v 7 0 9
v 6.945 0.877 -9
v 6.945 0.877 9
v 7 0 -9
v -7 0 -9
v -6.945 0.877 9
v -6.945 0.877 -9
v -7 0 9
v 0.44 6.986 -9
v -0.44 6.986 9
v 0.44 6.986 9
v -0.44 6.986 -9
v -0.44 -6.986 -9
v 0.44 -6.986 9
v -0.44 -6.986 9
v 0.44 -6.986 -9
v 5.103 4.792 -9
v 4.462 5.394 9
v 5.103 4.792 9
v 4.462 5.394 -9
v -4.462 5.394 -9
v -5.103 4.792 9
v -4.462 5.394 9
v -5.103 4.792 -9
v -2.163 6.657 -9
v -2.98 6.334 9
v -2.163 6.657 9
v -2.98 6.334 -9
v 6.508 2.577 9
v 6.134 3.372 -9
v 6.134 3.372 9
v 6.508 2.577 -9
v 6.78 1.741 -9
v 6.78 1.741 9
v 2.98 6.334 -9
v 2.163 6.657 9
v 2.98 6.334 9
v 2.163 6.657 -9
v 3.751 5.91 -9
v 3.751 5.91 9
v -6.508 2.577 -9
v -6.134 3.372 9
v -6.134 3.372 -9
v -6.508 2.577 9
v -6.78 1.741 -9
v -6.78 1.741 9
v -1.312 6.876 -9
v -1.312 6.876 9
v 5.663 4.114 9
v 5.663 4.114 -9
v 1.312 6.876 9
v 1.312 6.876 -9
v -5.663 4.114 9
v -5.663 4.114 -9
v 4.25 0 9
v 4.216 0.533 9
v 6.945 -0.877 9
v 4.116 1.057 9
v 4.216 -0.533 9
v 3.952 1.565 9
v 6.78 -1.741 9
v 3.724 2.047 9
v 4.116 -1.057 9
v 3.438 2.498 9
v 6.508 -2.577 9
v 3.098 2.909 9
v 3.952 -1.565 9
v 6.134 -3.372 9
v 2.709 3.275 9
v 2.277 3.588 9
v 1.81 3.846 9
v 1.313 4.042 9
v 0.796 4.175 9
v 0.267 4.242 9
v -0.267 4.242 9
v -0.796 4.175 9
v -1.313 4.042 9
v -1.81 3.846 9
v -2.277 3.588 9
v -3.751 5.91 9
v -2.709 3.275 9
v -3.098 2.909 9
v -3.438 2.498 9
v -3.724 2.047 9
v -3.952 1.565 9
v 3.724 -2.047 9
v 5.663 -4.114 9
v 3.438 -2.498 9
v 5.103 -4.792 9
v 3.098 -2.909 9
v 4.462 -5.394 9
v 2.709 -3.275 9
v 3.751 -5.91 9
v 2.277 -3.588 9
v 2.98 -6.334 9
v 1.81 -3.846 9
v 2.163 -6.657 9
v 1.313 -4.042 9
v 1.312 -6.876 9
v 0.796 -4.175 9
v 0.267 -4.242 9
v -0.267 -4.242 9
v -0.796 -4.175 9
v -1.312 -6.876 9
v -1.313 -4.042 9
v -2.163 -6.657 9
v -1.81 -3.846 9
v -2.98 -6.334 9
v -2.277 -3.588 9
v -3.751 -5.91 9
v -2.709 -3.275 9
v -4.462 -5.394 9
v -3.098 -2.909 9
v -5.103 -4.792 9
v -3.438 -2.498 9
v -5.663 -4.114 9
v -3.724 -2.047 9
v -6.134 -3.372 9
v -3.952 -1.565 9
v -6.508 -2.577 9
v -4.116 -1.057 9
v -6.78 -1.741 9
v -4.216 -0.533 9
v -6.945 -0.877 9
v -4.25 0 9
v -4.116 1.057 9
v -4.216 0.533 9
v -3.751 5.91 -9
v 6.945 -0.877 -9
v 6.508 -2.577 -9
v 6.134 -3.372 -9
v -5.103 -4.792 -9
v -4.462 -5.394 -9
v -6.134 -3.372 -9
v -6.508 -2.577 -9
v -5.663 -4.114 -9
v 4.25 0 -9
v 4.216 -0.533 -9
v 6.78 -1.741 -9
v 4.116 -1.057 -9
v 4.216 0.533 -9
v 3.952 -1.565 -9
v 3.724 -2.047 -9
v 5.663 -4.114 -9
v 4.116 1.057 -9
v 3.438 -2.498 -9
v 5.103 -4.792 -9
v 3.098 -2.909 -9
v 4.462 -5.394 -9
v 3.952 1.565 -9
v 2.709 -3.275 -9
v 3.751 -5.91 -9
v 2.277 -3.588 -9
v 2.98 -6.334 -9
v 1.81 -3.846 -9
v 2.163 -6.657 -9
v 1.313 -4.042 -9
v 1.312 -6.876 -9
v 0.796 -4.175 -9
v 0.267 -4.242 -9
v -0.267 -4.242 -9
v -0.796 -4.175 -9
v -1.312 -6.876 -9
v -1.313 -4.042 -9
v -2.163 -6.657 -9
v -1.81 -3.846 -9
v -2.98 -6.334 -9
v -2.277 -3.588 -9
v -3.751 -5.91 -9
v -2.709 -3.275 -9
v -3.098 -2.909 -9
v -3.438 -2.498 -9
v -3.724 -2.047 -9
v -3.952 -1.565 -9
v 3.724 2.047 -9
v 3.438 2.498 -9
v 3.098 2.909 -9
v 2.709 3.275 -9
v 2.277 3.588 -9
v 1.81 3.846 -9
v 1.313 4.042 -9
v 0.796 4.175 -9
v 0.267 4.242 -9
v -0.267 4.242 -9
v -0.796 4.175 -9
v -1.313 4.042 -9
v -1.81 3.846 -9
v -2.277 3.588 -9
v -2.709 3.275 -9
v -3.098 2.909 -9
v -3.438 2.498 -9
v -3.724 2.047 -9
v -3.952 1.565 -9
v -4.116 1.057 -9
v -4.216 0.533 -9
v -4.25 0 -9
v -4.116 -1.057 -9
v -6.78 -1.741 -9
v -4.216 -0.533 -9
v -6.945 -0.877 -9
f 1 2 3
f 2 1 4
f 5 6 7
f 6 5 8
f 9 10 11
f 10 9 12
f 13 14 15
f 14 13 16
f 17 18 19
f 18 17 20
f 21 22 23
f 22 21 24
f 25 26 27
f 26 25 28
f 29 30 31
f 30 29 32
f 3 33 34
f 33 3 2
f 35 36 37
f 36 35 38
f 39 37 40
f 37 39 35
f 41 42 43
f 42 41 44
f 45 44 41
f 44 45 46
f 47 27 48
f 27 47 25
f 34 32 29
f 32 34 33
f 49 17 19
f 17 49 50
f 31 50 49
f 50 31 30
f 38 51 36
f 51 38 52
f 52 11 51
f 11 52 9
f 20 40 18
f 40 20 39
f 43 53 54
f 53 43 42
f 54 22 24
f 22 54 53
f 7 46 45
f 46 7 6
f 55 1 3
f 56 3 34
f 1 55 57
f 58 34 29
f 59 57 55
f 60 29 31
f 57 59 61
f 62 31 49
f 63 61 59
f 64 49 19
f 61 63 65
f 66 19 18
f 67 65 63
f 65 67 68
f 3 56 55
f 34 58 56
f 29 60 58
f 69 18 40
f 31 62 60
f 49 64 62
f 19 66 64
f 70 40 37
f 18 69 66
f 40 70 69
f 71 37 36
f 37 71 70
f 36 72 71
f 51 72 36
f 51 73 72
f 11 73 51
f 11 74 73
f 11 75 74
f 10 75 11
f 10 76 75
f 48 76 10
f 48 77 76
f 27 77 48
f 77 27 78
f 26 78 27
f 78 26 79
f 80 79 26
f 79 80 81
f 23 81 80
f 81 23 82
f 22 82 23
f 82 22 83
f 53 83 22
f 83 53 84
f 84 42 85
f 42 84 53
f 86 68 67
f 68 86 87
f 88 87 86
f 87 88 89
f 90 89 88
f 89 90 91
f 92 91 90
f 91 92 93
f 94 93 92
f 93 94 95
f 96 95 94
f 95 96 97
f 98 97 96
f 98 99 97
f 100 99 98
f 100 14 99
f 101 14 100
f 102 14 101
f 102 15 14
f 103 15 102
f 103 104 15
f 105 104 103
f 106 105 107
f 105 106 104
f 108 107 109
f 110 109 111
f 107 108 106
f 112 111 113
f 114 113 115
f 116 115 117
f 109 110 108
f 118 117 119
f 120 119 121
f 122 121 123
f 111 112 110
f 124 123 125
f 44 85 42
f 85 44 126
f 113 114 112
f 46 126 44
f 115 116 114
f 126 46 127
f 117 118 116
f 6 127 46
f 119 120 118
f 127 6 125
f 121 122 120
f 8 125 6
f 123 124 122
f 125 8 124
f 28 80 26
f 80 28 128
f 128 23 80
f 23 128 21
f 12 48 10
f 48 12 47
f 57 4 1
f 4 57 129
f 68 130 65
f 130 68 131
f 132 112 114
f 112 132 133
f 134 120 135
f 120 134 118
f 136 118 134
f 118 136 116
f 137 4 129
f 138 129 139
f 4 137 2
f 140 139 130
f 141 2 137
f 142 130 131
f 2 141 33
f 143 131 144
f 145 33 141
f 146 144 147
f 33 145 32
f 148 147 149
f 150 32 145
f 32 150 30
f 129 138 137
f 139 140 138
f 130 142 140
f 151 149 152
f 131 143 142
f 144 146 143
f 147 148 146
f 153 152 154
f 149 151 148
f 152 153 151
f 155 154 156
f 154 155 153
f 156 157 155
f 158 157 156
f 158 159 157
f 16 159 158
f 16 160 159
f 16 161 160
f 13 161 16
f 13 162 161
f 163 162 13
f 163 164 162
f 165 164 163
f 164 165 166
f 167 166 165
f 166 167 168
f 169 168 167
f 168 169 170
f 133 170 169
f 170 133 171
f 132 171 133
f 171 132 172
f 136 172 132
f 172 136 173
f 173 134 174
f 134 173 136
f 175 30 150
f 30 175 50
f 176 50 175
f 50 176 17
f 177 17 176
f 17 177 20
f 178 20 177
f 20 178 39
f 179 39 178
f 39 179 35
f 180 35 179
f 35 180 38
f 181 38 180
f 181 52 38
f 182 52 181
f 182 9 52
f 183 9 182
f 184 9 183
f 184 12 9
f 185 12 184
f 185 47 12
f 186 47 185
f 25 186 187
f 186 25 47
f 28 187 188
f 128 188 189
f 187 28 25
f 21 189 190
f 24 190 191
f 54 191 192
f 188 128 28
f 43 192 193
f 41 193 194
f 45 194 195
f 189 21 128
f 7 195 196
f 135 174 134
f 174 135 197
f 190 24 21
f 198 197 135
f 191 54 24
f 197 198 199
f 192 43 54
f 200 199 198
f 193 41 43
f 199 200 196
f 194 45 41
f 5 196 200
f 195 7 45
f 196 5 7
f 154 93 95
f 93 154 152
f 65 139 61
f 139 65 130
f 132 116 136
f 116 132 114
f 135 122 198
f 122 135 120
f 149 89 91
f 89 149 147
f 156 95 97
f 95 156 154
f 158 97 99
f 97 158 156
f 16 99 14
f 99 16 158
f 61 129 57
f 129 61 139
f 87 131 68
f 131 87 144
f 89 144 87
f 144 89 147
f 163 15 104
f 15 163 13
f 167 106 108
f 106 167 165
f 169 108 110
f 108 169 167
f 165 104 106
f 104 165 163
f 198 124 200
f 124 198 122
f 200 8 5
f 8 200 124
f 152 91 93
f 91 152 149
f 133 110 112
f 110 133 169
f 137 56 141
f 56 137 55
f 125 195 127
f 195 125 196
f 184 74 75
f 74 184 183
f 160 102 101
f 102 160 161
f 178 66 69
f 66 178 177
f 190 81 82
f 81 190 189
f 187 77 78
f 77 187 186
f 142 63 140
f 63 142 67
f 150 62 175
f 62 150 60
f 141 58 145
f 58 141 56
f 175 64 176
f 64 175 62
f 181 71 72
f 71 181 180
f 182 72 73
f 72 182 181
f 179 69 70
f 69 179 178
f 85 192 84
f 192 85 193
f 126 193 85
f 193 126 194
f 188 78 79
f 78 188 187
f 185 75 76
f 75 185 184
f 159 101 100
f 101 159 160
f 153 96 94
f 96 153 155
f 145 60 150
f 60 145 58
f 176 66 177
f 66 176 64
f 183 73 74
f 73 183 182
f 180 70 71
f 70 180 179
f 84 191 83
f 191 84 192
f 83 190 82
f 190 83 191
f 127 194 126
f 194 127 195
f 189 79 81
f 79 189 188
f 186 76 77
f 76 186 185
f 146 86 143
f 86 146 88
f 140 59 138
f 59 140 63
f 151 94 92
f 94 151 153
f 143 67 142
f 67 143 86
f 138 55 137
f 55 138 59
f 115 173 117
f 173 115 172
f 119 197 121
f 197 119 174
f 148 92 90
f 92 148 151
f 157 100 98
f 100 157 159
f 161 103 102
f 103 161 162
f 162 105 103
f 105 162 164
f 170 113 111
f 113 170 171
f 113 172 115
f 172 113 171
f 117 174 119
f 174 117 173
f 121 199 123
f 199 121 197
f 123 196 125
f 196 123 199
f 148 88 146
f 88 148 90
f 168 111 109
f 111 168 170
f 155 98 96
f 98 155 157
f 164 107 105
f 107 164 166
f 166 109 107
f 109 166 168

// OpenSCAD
$fn = 50;


difference() {
	union() {
		translate(v = [0, 0, -9.0000000000]) {
			cylinder(h = 18, r = 7.0000000000);
		}
	}
	union() {
		translate(v = [0, 0, -100.0000000000]) {
			cylinder(h = 200, r = 4.2500000000);
		}
	}
}
